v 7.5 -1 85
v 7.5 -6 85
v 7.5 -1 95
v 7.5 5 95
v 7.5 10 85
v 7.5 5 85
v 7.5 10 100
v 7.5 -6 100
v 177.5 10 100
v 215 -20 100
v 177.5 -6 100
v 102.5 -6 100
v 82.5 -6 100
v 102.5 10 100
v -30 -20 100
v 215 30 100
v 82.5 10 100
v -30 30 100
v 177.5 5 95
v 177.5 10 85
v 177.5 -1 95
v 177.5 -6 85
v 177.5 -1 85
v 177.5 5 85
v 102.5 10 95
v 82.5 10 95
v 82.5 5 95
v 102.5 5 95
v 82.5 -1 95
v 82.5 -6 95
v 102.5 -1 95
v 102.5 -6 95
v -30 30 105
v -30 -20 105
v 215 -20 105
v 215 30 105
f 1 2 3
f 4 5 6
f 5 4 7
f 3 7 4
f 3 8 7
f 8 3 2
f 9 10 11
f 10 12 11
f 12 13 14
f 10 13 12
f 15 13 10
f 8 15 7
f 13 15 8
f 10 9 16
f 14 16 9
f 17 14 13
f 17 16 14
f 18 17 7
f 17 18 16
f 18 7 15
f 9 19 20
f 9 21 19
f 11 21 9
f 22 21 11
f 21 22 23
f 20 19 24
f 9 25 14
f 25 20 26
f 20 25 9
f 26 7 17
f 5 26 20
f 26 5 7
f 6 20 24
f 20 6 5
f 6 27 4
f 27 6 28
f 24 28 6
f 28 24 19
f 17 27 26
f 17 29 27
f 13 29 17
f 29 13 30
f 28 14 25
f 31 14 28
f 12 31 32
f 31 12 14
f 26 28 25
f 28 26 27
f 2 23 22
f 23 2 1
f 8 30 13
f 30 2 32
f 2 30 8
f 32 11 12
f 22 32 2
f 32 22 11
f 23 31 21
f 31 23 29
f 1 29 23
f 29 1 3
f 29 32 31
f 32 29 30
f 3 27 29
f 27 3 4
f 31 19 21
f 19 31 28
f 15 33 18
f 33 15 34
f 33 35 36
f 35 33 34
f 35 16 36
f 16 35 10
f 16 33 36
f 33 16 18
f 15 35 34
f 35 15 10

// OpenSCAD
translate([-30,-20, 100]){
    color("orange")
    cube([245,50,5]);
}
difference(){
    translate([7.5,5, 85]){
        color("blue")
        cube([170,5,15]);
    }
    translate([82.5,-7,95]){
        cube([20,50,5]);
    }
}

difference(){
    translate([7.5,-6, 85]){
        color("blue")
        cube([170,5,15]);
    }
    translate([82.5,-7,95]){
        cube([20,50,5]);
    }
}

difference(){
    translate([7.5,-1, 95]){
        cube([170,6, 5]);
    }
    translate([82.5,-7,95]){
        cube([20,50,5]);
    }
}
